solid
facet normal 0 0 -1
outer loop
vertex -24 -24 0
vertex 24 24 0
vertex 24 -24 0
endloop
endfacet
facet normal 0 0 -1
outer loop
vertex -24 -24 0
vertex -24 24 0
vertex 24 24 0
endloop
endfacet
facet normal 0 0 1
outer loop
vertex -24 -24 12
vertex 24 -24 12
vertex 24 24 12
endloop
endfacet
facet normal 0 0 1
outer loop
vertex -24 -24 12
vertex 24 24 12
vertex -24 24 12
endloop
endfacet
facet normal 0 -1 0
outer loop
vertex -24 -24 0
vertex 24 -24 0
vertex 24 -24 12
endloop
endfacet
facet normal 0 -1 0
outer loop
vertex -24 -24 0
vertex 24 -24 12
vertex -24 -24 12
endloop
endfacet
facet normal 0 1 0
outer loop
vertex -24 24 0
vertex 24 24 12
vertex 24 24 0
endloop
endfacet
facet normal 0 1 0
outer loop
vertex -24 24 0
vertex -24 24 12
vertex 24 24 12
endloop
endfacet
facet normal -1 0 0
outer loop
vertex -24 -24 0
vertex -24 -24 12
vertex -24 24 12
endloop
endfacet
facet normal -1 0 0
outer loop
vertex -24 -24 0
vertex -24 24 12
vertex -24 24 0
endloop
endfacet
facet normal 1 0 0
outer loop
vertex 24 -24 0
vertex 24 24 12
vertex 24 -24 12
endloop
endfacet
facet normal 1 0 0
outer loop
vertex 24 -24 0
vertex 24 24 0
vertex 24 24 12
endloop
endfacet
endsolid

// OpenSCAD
// Gemini 4 Argon Parametric OpenSCAD — PRT-04: Snap-Fit Warm White Coaxial LED Diffuser Ring
$fn = 64;
translate([-24.00, -24.00, 0])
  cube([48, 48, 12]);
